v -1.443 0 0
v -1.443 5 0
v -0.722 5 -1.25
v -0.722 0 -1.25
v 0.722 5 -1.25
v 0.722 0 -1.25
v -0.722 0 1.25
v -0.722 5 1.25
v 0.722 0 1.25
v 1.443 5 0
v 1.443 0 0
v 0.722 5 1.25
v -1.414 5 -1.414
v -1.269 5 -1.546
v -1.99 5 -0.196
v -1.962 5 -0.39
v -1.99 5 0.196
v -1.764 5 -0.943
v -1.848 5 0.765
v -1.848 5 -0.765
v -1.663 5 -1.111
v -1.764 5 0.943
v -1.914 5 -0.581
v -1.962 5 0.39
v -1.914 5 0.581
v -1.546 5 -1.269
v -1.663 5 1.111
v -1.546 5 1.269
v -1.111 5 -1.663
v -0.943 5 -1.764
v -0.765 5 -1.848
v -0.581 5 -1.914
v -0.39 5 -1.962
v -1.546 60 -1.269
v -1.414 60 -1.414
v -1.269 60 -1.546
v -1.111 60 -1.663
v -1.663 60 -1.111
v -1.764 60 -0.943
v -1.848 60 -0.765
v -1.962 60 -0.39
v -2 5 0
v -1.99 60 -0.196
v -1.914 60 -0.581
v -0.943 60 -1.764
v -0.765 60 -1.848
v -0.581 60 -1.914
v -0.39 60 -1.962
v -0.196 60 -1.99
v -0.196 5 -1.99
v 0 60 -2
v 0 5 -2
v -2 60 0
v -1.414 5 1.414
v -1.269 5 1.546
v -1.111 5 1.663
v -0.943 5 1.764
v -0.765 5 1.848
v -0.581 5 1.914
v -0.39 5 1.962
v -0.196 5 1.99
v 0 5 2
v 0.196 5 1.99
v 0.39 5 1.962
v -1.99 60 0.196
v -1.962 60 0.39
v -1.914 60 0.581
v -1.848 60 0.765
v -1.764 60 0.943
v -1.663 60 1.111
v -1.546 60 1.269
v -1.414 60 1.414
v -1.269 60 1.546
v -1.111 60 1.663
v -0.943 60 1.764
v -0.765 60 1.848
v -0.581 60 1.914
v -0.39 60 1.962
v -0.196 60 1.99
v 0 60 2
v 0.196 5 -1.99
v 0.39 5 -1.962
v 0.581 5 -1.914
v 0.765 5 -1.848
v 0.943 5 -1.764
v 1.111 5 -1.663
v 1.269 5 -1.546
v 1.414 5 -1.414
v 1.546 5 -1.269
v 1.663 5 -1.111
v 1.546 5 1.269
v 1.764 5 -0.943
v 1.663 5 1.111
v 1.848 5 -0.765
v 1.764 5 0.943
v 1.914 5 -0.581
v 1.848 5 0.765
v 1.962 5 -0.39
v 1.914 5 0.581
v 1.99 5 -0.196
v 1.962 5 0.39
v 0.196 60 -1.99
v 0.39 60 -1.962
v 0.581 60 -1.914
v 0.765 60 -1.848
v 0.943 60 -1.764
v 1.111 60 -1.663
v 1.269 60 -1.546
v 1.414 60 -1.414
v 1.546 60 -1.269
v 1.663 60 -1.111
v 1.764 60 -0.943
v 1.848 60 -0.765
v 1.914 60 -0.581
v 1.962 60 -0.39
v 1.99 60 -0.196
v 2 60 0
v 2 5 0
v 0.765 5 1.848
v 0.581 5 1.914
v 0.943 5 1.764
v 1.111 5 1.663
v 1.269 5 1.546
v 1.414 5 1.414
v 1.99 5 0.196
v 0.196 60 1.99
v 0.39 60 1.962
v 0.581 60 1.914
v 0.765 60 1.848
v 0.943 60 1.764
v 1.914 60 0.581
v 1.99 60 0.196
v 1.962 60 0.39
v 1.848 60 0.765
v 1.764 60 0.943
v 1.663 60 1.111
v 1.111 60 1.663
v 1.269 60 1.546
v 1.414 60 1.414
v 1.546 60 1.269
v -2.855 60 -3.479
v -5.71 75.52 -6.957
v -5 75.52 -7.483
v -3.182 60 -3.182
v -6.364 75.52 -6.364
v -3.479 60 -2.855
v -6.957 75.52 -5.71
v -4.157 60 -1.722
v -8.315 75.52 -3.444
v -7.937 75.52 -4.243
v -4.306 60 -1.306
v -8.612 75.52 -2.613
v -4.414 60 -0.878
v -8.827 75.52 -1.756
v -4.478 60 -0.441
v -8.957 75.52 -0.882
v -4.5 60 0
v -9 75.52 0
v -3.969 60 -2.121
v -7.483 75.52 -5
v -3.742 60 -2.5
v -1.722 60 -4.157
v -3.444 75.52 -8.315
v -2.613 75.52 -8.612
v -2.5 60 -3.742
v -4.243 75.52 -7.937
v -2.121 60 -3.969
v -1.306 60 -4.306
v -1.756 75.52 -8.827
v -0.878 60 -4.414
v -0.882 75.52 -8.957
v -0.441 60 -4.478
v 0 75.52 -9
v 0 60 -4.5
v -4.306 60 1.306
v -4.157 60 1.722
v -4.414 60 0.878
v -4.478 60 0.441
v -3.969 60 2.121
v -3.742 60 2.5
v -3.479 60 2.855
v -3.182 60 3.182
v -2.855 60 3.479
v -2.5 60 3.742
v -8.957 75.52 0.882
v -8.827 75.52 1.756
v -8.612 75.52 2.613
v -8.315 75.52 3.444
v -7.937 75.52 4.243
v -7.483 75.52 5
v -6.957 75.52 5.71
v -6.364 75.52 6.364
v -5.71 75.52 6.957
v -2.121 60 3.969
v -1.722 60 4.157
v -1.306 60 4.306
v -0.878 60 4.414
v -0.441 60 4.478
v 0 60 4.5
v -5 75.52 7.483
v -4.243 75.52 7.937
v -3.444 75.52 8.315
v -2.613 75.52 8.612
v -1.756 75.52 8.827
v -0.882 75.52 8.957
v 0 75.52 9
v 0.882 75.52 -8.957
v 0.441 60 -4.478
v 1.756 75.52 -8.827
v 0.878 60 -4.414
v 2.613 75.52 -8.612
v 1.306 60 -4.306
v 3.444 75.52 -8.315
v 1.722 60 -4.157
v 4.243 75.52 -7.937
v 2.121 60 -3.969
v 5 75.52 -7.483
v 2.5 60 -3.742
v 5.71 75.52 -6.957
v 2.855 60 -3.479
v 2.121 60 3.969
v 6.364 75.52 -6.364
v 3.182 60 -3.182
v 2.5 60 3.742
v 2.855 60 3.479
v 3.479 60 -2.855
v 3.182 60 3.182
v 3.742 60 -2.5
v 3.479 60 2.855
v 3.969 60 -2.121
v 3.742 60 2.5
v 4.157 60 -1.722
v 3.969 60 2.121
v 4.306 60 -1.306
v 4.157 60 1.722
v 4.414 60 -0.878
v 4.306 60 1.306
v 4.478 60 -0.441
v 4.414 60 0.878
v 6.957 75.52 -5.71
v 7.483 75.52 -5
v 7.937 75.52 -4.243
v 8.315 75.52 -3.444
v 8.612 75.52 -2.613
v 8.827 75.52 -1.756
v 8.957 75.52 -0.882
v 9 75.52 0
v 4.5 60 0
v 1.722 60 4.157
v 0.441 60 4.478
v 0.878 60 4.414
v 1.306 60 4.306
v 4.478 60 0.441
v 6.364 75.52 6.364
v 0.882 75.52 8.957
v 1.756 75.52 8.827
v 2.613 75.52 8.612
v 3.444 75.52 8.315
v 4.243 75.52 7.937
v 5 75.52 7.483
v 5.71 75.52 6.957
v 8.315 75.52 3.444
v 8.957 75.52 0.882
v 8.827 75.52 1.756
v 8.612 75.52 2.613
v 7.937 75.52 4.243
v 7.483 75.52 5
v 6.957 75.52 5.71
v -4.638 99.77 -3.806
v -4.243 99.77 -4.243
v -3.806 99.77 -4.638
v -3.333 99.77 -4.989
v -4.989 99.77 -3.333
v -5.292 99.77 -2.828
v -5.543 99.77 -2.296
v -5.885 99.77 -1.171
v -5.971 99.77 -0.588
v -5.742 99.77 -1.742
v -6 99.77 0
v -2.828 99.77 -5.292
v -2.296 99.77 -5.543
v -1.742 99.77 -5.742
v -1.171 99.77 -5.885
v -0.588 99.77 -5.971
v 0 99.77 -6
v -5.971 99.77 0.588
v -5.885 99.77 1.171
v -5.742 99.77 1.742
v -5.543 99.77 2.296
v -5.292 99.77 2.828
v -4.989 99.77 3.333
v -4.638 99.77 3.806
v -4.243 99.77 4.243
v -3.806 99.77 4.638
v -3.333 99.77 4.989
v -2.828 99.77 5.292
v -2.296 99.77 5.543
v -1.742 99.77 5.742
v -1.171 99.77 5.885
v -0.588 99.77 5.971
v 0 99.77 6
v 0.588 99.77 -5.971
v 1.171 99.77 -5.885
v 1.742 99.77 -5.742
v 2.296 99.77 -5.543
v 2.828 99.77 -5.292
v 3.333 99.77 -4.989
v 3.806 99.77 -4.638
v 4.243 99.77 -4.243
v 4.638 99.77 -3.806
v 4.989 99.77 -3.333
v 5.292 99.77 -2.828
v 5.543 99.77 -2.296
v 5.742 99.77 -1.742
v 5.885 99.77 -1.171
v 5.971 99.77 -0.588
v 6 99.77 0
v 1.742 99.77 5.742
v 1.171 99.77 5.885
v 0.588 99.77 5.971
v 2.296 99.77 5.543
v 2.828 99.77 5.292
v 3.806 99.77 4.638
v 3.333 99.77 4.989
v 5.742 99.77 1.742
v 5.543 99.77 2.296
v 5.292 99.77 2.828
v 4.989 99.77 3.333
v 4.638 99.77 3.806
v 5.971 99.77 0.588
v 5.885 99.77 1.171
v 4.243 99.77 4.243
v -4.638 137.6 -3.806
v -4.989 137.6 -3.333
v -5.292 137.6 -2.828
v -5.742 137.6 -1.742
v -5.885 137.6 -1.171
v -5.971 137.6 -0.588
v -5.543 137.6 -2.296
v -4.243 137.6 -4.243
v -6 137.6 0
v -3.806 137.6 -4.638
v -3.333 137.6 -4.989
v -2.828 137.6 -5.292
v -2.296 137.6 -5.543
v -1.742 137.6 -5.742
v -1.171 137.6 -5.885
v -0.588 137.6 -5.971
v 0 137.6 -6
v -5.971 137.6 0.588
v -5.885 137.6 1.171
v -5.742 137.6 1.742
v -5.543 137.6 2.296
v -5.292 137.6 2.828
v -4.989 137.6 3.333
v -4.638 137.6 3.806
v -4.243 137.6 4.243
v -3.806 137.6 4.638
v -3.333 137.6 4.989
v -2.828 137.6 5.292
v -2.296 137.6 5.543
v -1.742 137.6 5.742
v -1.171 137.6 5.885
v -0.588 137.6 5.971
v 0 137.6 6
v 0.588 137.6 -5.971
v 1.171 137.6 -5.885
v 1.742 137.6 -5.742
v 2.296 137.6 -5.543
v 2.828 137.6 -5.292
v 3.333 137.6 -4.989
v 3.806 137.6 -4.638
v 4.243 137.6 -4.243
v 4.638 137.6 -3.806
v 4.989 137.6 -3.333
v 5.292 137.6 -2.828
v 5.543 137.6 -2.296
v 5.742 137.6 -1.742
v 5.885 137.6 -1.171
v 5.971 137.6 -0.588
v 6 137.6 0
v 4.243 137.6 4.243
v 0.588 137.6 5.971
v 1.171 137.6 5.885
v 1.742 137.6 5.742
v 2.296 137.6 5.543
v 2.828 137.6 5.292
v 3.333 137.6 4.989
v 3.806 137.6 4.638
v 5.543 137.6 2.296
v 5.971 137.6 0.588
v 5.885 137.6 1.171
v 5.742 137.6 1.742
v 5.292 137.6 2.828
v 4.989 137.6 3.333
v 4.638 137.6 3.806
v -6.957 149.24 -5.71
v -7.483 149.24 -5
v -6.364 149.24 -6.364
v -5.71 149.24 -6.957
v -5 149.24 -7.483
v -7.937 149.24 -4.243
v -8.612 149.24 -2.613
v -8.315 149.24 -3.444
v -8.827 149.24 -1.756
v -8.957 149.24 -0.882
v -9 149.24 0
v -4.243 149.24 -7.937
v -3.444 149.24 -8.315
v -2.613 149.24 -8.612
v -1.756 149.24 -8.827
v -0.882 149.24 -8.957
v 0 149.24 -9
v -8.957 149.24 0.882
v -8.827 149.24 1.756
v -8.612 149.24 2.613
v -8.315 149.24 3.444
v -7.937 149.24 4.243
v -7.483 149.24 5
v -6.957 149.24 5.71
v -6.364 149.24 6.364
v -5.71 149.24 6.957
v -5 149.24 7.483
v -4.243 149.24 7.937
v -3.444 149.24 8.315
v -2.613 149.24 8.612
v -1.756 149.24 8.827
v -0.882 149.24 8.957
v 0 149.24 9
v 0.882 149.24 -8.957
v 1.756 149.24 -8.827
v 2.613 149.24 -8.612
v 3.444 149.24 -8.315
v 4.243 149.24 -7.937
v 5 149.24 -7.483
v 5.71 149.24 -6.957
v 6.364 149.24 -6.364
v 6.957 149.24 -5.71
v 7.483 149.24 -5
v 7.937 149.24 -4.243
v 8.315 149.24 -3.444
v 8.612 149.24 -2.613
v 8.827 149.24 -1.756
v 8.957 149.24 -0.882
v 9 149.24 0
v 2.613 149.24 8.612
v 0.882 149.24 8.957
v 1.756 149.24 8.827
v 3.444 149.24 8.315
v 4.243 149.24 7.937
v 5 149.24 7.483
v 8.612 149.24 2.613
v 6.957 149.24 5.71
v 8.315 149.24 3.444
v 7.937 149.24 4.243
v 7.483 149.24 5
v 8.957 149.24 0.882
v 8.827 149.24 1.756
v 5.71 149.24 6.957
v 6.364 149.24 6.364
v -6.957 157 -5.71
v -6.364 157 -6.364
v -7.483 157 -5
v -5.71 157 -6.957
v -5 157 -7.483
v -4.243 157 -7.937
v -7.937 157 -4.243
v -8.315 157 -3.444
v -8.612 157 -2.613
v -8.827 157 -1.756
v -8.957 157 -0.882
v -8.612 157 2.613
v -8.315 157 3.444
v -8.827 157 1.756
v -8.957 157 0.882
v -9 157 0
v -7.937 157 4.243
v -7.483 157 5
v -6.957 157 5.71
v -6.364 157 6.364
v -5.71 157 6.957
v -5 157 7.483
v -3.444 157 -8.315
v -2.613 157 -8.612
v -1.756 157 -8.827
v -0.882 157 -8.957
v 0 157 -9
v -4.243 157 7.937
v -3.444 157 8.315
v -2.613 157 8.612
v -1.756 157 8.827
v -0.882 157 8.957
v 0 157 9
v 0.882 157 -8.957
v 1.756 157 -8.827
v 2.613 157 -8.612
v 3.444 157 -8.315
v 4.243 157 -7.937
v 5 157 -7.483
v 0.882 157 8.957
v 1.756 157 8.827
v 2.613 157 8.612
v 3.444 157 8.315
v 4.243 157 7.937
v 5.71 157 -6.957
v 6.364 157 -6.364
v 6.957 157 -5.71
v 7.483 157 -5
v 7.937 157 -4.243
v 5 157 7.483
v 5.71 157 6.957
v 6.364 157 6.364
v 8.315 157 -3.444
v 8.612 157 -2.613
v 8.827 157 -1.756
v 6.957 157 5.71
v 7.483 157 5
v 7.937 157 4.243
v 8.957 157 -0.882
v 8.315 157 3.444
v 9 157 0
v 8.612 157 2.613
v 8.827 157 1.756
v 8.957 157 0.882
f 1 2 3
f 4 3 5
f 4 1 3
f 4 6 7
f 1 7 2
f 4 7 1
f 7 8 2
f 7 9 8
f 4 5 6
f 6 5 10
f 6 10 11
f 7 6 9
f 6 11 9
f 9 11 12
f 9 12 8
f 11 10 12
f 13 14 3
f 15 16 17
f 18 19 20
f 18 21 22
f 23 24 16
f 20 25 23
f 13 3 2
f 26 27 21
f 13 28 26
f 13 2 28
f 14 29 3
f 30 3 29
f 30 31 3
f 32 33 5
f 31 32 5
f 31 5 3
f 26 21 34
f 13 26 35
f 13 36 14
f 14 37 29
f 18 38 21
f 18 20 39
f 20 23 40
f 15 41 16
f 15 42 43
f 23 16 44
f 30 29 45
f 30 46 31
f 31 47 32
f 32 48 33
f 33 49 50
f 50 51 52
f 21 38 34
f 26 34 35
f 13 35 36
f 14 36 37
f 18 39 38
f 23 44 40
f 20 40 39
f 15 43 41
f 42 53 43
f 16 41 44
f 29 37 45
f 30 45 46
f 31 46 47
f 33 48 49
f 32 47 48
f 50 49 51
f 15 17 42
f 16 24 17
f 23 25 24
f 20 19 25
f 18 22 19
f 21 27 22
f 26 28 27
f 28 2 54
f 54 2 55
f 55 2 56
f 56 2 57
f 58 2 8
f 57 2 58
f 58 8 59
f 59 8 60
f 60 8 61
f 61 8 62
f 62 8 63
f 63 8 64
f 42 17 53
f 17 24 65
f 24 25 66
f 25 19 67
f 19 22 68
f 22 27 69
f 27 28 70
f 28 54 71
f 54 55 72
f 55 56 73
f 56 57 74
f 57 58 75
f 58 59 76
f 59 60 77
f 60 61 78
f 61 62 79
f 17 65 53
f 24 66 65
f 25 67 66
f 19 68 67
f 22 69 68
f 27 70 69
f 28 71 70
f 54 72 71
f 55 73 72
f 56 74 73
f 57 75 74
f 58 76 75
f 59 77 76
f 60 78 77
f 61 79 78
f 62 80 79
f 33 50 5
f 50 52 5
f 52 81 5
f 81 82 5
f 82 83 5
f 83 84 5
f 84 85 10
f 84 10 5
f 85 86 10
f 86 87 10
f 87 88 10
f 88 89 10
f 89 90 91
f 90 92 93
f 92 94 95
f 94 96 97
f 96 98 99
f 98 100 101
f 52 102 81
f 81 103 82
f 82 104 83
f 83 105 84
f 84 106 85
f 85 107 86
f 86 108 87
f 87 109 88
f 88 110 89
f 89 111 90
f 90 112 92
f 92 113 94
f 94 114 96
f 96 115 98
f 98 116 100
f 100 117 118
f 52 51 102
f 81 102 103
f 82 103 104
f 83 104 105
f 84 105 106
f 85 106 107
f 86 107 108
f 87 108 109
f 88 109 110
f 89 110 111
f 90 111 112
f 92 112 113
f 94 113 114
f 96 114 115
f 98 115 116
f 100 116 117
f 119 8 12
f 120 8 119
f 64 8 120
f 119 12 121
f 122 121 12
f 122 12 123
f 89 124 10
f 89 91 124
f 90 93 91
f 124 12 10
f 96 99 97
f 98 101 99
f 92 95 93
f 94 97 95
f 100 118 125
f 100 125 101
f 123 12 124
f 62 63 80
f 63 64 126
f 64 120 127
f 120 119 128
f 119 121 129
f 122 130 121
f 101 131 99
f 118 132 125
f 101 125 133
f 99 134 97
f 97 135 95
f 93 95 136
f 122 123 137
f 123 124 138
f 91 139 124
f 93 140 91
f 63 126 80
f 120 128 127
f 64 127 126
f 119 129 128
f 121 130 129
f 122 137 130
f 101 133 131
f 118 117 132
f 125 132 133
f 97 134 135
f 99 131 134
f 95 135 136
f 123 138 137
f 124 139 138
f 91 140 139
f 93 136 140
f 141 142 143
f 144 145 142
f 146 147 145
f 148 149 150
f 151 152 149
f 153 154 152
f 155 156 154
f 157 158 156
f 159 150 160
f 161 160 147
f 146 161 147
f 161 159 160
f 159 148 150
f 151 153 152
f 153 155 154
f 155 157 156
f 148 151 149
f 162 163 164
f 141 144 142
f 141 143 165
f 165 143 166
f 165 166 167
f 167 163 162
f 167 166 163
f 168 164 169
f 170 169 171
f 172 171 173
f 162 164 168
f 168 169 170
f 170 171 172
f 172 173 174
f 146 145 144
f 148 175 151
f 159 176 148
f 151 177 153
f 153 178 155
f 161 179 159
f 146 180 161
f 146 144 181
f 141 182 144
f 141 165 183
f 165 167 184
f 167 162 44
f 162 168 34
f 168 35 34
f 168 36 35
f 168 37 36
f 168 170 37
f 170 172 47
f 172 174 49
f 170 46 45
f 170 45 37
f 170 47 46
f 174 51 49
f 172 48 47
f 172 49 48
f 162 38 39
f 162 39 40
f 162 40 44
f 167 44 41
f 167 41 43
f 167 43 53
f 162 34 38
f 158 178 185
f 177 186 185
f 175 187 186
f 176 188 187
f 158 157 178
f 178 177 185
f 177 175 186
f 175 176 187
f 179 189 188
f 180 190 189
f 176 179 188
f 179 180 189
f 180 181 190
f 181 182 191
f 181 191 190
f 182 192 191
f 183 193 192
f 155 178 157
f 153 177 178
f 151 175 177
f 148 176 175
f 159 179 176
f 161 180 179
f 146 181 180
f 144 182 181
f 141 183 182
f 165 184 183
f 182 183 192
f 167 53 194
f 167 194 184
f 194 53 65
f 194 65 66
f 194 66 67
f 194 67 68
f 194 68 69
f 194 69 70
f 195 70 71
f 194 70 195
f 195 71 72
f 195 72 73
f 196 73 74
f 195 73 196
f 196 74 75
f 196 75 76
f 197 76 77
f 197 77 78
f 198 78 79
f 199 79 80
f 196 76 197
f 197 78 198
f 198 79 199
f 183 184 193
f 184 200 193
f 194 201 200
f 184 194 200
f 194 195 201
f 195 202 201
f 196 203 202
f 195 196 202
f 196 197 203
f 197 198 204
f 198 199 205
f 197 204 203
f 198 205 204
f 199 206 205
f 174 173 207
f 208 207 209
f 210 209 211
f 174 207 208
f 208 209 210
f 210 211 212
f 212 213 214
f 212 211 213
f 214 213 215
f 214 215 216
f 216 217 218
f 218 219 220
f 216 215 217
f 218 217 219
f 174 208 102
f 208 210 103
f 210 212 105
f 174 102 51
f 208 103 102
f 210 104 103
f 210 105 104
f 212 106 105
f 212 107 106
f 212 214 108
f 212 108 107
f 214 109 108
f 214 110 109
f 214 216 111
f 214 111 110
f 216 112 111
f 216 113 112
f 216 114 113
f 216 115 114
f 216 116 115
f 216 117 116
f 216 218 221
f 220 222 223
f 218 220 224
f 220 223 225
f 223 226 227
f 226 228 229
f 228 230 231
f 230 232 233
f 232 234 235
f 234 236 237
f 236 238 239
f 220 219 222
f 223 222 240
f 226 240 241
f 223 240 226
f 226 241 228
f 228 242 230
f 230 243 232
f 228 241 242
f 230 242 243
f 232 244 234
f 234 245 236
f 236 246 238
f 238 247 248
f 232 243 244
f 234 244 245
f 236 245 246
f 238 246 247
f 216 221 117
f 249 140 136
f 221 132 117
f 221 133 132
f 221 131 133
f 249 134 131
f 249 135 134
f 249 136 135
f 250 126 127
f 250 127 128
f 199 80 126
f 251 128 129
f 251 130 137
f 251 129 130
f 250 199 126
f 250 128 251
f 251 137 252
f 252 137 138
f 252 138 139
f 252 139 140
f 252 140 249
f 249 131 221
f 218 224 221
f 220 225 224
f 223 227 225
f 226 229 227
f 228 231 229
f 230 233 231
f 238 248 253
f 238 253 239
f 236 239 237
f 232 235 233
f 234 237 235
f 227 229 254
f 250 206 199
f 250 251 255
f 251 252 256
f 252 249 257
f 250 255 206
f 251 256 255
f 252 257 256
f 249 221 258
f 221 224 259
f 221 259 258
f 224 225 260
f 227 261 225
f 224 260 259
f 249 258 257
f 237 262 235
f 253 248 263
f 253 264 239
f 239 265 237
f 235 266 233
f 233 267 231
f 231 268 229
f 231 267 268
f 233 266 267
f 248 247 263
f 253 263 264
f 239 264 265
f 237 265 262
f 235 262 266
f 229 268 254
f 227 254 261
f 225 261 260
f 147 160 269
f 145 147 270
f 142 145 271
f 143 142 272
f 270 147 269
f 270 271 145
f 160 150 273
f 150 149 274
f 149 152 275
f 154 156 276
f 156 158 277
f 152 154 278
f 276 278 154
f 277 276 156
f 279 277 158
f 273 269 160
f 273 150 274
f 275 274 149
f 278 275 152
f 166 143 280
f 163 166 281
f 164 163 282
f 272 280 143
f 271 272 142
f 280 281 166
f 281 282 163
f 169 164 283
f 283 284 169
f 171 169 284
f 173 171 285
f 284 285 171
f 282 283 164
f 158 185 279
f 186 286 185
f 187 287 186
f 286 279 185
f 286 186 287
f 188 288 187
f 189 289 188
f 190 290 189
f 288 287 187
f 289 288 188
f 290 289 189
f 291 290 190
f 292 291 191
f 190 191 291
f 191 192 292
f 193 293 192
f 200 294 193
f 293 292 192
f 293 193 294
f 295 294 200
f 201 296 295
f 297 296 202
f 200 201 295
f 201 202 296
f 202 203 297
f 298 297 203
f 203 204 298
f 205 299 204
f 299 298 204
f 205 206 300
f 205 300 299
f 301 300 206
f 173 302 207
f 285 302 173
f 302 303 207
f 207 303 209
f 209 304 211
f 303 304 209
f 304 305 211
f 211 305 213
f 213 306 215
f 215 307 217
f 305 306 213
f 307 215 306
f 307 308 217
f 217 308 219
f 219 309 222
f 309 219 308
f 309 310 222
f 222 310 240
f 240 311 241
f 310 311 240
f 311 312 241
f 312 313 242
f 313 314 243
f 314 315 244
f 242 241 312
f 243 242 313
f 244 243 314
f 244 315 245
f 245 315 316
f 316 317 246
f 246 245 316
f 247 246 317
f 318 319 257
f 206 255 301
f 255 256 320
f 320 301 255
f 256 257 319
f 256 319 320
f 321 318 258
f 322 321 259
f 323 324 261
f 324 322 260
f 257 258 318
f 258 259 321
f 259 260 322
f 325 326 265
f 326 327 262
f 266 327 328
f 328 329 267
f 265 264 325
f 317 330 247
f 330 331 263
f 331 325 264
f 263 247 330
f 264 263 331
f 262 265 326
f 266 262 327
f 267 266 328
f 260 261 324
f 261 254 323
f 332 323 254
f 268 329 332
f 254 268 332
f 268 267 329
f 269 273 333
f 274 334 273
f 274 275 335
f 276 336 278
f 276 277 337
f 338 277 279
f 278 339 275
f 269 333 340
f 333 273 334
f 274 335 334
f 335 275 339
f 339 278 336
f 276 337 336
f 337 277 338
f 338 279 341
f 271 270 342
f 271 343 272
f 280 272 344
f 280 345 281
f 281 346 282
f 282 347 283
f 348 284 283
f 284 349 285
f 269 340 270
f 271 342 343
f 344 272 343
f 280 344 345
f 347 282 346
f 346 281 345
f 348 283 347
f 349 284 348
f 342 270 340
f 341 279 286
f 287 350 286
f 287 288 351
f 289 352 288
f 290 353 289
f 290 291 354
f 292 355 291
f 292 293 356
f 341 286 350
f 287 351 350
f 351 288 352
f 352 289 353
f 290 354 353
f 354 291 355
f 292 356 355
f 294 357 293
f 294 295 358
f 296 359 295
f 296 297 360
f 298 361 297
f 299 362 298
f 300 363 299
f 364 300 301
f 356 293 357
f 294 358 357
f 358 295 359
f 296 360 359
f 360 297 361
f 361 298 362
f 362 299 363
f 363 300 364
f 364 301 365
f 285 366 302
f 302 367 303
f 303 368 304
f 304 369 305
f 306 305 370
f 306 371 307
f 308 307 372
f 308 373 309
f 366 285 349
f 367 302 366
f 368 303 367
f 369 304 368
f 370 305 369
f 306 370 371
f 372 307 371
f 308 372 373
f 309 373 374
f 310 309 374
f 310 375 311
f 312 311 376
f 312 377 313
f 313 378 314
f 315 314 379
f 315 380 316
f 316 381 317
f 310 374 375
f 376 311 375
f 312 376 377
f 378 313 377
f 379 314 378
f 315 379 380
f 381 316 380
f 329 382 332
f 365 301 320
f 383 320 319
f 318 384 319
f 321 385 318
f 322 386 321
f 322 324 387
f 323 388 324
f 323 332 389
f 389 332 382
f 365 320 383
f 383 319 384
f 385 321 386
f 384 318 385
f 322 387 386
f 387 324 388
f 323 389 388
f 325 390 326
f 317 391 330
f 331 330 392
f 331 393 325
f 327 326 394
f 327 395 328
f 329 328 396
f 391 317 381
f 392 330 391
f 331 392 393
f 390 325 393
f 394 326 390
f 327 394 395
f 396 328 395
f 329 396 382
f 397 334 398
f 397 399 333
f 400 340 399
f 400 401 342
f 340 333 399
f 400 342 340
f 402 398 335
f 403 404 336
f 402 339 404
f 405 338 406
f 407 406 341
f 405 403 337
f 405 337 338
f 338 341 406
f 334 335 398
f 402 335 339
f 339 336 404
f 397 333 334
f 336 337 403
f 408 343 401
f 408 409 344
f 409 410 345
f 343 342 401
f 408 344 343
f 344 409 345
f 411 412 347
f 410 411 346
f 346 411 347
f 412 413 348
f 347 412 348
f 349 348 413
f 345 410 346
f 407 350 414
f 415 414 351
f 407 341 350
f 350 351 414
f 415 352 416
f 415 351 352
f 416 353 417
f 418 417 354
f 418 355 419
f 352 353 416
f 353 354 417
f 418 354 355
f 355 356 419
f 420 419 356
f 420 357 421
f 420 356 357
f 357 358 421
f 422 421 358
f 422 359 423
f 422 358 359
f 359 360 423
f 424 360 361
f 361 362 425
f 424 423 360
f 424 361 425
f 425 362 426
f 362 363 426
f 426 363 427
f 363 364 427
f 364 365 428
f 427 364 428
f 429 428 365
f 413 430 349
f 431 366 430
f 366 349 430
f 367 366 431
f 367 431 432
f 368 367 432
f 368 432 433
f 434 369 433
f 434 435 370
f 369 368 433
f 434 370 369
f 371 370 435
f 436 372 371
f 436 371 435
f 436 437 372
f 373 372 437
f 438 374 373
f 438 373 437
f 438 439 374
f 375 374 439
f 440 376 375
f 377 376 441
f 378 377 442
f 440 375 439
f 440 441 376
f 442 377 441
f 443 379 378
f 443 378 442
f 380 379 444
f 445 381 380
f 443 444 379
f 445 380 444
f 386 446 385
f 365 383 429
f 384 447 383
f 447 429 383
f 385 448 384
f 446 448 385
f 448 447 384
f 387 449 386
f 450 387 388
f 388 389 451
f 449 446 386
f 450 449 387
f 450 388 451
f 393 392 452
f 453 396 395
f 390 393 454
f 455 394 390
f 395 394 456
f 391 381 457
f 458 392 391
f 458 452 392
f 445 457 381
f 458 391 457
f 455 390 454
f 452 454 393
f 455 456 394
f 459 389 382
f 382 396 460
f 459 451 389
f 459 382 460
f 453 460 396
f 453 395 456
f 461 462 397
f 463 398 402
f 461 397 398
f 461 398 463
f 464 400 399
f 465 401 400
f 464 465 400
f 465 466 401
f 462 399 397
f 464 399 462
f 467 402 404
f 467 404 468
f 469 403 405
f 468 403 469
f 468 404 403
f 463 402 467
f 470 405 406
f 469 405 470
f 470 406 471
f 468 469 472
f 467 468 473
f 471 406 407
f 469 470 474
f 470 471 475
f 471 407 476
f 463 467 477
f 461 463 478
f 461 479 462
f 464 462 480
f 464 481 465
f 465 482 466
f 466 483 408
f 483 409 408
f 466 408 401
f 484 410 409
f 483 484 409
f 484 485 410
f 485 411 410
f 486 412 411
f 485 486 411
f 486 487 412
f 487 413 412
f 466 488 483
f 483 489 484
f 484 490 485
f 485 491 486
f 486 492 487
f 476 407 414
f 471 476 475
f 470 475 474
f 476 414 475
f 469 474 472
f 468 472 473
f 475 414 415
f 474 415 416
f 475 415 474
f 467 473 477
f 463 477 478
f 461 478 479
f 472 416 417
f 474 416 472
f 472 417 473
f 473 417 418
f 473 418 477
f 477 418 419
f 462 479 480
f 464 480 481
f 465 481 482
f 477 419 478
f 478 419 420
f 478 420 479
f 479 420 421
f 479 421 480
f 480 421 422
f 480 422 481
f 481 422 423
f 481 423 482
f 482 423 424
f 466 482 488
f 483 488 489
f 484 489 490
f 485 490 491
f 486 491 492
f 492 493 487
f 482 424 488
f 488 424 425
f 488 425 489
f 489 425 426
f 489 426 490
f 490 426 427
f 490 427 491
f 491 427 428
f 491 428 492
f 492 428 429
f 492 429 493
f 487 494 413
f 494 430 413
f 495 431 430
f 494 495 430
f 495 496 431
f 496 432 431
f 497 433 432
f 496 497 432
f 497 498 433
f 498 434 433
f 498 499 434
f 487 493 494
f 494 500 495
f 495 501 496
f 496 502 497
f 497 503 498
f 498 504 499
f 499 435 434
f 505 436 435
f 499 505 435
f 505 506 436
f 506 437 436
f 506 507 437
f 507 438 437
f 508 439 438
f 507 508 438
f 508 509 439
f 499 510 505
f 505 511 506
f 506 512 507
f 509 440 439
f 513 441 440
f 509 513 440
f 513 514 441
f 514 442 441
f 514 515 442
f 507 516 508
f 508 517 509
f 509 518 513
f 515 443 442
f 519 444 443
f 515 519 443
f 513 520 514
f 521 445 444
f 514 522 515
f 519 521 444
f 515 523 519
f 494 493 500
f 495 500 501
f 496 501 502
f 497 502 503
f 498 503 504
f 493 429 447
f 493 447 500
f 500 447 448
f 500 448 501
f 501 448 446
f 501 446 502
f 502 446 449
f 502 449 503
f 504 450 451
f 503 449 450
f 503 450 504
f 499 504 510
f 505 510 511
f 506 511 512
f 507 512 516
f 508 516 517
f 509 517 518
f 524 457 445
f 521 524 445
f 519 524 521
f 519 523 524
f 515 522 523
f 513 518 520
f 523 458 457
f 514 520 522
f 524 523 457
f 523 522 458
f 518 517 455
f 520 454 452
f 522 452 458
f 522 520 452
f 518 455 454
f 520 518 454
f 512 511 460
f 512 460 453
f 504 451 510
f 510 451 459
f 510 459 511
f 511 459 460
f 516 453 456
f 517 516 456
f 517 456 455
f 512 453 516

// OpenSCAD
// Wera 2054 Micro hex screwdriver, 2.5 × 60 mm
// Wera specifies the shaft diameter, shaft length and handle length. The archived OOMP record supplies the 18 mm handle envelope. Grip taper, cap and tip transition are illustrative.
// Units: mm
$fn = 64;
union() {
    translate([0, 0, 0]) rotate([-90, 0, 0])
        cylinder(h=5, r1=1.4433756729740645, r2=1.4433756729740645, $fn=6);
    translate([0, 5, 0]) rotate([-90, 0, 0])
        cylinder(h=55, r1=2.0, r2=2.0, $fn=64);
    translate([0, 60, 0]) rotate([-90, 0, 0])
        cylinder(h=15.52, r1=4.5, r2=9.0, $fn=64);
    translate([0, 75.52, 0]) rotate([-90, 0, 0])
        cylinder(h=24.25, r1=9.0, r2=6.0, $fn=64);
    translate([0, 99.77, 0]) rotate([-90, 0, 0])
        cylinder(h=37.83, r1=6.0, r2=6.0, $fn=64);
    translate([0, 137.6, 0]) rotate([-90, 0, 0])
        cylinder(h=11.639999999999999, r1=6.0, r2=9.0, $fn=64);
    translate([0, 149.23999999999998, 0]) rotate([-90, 0, 0])
        cylinder(h=7.76, r1=9.0, r2=9.0, $fn=64);
}
